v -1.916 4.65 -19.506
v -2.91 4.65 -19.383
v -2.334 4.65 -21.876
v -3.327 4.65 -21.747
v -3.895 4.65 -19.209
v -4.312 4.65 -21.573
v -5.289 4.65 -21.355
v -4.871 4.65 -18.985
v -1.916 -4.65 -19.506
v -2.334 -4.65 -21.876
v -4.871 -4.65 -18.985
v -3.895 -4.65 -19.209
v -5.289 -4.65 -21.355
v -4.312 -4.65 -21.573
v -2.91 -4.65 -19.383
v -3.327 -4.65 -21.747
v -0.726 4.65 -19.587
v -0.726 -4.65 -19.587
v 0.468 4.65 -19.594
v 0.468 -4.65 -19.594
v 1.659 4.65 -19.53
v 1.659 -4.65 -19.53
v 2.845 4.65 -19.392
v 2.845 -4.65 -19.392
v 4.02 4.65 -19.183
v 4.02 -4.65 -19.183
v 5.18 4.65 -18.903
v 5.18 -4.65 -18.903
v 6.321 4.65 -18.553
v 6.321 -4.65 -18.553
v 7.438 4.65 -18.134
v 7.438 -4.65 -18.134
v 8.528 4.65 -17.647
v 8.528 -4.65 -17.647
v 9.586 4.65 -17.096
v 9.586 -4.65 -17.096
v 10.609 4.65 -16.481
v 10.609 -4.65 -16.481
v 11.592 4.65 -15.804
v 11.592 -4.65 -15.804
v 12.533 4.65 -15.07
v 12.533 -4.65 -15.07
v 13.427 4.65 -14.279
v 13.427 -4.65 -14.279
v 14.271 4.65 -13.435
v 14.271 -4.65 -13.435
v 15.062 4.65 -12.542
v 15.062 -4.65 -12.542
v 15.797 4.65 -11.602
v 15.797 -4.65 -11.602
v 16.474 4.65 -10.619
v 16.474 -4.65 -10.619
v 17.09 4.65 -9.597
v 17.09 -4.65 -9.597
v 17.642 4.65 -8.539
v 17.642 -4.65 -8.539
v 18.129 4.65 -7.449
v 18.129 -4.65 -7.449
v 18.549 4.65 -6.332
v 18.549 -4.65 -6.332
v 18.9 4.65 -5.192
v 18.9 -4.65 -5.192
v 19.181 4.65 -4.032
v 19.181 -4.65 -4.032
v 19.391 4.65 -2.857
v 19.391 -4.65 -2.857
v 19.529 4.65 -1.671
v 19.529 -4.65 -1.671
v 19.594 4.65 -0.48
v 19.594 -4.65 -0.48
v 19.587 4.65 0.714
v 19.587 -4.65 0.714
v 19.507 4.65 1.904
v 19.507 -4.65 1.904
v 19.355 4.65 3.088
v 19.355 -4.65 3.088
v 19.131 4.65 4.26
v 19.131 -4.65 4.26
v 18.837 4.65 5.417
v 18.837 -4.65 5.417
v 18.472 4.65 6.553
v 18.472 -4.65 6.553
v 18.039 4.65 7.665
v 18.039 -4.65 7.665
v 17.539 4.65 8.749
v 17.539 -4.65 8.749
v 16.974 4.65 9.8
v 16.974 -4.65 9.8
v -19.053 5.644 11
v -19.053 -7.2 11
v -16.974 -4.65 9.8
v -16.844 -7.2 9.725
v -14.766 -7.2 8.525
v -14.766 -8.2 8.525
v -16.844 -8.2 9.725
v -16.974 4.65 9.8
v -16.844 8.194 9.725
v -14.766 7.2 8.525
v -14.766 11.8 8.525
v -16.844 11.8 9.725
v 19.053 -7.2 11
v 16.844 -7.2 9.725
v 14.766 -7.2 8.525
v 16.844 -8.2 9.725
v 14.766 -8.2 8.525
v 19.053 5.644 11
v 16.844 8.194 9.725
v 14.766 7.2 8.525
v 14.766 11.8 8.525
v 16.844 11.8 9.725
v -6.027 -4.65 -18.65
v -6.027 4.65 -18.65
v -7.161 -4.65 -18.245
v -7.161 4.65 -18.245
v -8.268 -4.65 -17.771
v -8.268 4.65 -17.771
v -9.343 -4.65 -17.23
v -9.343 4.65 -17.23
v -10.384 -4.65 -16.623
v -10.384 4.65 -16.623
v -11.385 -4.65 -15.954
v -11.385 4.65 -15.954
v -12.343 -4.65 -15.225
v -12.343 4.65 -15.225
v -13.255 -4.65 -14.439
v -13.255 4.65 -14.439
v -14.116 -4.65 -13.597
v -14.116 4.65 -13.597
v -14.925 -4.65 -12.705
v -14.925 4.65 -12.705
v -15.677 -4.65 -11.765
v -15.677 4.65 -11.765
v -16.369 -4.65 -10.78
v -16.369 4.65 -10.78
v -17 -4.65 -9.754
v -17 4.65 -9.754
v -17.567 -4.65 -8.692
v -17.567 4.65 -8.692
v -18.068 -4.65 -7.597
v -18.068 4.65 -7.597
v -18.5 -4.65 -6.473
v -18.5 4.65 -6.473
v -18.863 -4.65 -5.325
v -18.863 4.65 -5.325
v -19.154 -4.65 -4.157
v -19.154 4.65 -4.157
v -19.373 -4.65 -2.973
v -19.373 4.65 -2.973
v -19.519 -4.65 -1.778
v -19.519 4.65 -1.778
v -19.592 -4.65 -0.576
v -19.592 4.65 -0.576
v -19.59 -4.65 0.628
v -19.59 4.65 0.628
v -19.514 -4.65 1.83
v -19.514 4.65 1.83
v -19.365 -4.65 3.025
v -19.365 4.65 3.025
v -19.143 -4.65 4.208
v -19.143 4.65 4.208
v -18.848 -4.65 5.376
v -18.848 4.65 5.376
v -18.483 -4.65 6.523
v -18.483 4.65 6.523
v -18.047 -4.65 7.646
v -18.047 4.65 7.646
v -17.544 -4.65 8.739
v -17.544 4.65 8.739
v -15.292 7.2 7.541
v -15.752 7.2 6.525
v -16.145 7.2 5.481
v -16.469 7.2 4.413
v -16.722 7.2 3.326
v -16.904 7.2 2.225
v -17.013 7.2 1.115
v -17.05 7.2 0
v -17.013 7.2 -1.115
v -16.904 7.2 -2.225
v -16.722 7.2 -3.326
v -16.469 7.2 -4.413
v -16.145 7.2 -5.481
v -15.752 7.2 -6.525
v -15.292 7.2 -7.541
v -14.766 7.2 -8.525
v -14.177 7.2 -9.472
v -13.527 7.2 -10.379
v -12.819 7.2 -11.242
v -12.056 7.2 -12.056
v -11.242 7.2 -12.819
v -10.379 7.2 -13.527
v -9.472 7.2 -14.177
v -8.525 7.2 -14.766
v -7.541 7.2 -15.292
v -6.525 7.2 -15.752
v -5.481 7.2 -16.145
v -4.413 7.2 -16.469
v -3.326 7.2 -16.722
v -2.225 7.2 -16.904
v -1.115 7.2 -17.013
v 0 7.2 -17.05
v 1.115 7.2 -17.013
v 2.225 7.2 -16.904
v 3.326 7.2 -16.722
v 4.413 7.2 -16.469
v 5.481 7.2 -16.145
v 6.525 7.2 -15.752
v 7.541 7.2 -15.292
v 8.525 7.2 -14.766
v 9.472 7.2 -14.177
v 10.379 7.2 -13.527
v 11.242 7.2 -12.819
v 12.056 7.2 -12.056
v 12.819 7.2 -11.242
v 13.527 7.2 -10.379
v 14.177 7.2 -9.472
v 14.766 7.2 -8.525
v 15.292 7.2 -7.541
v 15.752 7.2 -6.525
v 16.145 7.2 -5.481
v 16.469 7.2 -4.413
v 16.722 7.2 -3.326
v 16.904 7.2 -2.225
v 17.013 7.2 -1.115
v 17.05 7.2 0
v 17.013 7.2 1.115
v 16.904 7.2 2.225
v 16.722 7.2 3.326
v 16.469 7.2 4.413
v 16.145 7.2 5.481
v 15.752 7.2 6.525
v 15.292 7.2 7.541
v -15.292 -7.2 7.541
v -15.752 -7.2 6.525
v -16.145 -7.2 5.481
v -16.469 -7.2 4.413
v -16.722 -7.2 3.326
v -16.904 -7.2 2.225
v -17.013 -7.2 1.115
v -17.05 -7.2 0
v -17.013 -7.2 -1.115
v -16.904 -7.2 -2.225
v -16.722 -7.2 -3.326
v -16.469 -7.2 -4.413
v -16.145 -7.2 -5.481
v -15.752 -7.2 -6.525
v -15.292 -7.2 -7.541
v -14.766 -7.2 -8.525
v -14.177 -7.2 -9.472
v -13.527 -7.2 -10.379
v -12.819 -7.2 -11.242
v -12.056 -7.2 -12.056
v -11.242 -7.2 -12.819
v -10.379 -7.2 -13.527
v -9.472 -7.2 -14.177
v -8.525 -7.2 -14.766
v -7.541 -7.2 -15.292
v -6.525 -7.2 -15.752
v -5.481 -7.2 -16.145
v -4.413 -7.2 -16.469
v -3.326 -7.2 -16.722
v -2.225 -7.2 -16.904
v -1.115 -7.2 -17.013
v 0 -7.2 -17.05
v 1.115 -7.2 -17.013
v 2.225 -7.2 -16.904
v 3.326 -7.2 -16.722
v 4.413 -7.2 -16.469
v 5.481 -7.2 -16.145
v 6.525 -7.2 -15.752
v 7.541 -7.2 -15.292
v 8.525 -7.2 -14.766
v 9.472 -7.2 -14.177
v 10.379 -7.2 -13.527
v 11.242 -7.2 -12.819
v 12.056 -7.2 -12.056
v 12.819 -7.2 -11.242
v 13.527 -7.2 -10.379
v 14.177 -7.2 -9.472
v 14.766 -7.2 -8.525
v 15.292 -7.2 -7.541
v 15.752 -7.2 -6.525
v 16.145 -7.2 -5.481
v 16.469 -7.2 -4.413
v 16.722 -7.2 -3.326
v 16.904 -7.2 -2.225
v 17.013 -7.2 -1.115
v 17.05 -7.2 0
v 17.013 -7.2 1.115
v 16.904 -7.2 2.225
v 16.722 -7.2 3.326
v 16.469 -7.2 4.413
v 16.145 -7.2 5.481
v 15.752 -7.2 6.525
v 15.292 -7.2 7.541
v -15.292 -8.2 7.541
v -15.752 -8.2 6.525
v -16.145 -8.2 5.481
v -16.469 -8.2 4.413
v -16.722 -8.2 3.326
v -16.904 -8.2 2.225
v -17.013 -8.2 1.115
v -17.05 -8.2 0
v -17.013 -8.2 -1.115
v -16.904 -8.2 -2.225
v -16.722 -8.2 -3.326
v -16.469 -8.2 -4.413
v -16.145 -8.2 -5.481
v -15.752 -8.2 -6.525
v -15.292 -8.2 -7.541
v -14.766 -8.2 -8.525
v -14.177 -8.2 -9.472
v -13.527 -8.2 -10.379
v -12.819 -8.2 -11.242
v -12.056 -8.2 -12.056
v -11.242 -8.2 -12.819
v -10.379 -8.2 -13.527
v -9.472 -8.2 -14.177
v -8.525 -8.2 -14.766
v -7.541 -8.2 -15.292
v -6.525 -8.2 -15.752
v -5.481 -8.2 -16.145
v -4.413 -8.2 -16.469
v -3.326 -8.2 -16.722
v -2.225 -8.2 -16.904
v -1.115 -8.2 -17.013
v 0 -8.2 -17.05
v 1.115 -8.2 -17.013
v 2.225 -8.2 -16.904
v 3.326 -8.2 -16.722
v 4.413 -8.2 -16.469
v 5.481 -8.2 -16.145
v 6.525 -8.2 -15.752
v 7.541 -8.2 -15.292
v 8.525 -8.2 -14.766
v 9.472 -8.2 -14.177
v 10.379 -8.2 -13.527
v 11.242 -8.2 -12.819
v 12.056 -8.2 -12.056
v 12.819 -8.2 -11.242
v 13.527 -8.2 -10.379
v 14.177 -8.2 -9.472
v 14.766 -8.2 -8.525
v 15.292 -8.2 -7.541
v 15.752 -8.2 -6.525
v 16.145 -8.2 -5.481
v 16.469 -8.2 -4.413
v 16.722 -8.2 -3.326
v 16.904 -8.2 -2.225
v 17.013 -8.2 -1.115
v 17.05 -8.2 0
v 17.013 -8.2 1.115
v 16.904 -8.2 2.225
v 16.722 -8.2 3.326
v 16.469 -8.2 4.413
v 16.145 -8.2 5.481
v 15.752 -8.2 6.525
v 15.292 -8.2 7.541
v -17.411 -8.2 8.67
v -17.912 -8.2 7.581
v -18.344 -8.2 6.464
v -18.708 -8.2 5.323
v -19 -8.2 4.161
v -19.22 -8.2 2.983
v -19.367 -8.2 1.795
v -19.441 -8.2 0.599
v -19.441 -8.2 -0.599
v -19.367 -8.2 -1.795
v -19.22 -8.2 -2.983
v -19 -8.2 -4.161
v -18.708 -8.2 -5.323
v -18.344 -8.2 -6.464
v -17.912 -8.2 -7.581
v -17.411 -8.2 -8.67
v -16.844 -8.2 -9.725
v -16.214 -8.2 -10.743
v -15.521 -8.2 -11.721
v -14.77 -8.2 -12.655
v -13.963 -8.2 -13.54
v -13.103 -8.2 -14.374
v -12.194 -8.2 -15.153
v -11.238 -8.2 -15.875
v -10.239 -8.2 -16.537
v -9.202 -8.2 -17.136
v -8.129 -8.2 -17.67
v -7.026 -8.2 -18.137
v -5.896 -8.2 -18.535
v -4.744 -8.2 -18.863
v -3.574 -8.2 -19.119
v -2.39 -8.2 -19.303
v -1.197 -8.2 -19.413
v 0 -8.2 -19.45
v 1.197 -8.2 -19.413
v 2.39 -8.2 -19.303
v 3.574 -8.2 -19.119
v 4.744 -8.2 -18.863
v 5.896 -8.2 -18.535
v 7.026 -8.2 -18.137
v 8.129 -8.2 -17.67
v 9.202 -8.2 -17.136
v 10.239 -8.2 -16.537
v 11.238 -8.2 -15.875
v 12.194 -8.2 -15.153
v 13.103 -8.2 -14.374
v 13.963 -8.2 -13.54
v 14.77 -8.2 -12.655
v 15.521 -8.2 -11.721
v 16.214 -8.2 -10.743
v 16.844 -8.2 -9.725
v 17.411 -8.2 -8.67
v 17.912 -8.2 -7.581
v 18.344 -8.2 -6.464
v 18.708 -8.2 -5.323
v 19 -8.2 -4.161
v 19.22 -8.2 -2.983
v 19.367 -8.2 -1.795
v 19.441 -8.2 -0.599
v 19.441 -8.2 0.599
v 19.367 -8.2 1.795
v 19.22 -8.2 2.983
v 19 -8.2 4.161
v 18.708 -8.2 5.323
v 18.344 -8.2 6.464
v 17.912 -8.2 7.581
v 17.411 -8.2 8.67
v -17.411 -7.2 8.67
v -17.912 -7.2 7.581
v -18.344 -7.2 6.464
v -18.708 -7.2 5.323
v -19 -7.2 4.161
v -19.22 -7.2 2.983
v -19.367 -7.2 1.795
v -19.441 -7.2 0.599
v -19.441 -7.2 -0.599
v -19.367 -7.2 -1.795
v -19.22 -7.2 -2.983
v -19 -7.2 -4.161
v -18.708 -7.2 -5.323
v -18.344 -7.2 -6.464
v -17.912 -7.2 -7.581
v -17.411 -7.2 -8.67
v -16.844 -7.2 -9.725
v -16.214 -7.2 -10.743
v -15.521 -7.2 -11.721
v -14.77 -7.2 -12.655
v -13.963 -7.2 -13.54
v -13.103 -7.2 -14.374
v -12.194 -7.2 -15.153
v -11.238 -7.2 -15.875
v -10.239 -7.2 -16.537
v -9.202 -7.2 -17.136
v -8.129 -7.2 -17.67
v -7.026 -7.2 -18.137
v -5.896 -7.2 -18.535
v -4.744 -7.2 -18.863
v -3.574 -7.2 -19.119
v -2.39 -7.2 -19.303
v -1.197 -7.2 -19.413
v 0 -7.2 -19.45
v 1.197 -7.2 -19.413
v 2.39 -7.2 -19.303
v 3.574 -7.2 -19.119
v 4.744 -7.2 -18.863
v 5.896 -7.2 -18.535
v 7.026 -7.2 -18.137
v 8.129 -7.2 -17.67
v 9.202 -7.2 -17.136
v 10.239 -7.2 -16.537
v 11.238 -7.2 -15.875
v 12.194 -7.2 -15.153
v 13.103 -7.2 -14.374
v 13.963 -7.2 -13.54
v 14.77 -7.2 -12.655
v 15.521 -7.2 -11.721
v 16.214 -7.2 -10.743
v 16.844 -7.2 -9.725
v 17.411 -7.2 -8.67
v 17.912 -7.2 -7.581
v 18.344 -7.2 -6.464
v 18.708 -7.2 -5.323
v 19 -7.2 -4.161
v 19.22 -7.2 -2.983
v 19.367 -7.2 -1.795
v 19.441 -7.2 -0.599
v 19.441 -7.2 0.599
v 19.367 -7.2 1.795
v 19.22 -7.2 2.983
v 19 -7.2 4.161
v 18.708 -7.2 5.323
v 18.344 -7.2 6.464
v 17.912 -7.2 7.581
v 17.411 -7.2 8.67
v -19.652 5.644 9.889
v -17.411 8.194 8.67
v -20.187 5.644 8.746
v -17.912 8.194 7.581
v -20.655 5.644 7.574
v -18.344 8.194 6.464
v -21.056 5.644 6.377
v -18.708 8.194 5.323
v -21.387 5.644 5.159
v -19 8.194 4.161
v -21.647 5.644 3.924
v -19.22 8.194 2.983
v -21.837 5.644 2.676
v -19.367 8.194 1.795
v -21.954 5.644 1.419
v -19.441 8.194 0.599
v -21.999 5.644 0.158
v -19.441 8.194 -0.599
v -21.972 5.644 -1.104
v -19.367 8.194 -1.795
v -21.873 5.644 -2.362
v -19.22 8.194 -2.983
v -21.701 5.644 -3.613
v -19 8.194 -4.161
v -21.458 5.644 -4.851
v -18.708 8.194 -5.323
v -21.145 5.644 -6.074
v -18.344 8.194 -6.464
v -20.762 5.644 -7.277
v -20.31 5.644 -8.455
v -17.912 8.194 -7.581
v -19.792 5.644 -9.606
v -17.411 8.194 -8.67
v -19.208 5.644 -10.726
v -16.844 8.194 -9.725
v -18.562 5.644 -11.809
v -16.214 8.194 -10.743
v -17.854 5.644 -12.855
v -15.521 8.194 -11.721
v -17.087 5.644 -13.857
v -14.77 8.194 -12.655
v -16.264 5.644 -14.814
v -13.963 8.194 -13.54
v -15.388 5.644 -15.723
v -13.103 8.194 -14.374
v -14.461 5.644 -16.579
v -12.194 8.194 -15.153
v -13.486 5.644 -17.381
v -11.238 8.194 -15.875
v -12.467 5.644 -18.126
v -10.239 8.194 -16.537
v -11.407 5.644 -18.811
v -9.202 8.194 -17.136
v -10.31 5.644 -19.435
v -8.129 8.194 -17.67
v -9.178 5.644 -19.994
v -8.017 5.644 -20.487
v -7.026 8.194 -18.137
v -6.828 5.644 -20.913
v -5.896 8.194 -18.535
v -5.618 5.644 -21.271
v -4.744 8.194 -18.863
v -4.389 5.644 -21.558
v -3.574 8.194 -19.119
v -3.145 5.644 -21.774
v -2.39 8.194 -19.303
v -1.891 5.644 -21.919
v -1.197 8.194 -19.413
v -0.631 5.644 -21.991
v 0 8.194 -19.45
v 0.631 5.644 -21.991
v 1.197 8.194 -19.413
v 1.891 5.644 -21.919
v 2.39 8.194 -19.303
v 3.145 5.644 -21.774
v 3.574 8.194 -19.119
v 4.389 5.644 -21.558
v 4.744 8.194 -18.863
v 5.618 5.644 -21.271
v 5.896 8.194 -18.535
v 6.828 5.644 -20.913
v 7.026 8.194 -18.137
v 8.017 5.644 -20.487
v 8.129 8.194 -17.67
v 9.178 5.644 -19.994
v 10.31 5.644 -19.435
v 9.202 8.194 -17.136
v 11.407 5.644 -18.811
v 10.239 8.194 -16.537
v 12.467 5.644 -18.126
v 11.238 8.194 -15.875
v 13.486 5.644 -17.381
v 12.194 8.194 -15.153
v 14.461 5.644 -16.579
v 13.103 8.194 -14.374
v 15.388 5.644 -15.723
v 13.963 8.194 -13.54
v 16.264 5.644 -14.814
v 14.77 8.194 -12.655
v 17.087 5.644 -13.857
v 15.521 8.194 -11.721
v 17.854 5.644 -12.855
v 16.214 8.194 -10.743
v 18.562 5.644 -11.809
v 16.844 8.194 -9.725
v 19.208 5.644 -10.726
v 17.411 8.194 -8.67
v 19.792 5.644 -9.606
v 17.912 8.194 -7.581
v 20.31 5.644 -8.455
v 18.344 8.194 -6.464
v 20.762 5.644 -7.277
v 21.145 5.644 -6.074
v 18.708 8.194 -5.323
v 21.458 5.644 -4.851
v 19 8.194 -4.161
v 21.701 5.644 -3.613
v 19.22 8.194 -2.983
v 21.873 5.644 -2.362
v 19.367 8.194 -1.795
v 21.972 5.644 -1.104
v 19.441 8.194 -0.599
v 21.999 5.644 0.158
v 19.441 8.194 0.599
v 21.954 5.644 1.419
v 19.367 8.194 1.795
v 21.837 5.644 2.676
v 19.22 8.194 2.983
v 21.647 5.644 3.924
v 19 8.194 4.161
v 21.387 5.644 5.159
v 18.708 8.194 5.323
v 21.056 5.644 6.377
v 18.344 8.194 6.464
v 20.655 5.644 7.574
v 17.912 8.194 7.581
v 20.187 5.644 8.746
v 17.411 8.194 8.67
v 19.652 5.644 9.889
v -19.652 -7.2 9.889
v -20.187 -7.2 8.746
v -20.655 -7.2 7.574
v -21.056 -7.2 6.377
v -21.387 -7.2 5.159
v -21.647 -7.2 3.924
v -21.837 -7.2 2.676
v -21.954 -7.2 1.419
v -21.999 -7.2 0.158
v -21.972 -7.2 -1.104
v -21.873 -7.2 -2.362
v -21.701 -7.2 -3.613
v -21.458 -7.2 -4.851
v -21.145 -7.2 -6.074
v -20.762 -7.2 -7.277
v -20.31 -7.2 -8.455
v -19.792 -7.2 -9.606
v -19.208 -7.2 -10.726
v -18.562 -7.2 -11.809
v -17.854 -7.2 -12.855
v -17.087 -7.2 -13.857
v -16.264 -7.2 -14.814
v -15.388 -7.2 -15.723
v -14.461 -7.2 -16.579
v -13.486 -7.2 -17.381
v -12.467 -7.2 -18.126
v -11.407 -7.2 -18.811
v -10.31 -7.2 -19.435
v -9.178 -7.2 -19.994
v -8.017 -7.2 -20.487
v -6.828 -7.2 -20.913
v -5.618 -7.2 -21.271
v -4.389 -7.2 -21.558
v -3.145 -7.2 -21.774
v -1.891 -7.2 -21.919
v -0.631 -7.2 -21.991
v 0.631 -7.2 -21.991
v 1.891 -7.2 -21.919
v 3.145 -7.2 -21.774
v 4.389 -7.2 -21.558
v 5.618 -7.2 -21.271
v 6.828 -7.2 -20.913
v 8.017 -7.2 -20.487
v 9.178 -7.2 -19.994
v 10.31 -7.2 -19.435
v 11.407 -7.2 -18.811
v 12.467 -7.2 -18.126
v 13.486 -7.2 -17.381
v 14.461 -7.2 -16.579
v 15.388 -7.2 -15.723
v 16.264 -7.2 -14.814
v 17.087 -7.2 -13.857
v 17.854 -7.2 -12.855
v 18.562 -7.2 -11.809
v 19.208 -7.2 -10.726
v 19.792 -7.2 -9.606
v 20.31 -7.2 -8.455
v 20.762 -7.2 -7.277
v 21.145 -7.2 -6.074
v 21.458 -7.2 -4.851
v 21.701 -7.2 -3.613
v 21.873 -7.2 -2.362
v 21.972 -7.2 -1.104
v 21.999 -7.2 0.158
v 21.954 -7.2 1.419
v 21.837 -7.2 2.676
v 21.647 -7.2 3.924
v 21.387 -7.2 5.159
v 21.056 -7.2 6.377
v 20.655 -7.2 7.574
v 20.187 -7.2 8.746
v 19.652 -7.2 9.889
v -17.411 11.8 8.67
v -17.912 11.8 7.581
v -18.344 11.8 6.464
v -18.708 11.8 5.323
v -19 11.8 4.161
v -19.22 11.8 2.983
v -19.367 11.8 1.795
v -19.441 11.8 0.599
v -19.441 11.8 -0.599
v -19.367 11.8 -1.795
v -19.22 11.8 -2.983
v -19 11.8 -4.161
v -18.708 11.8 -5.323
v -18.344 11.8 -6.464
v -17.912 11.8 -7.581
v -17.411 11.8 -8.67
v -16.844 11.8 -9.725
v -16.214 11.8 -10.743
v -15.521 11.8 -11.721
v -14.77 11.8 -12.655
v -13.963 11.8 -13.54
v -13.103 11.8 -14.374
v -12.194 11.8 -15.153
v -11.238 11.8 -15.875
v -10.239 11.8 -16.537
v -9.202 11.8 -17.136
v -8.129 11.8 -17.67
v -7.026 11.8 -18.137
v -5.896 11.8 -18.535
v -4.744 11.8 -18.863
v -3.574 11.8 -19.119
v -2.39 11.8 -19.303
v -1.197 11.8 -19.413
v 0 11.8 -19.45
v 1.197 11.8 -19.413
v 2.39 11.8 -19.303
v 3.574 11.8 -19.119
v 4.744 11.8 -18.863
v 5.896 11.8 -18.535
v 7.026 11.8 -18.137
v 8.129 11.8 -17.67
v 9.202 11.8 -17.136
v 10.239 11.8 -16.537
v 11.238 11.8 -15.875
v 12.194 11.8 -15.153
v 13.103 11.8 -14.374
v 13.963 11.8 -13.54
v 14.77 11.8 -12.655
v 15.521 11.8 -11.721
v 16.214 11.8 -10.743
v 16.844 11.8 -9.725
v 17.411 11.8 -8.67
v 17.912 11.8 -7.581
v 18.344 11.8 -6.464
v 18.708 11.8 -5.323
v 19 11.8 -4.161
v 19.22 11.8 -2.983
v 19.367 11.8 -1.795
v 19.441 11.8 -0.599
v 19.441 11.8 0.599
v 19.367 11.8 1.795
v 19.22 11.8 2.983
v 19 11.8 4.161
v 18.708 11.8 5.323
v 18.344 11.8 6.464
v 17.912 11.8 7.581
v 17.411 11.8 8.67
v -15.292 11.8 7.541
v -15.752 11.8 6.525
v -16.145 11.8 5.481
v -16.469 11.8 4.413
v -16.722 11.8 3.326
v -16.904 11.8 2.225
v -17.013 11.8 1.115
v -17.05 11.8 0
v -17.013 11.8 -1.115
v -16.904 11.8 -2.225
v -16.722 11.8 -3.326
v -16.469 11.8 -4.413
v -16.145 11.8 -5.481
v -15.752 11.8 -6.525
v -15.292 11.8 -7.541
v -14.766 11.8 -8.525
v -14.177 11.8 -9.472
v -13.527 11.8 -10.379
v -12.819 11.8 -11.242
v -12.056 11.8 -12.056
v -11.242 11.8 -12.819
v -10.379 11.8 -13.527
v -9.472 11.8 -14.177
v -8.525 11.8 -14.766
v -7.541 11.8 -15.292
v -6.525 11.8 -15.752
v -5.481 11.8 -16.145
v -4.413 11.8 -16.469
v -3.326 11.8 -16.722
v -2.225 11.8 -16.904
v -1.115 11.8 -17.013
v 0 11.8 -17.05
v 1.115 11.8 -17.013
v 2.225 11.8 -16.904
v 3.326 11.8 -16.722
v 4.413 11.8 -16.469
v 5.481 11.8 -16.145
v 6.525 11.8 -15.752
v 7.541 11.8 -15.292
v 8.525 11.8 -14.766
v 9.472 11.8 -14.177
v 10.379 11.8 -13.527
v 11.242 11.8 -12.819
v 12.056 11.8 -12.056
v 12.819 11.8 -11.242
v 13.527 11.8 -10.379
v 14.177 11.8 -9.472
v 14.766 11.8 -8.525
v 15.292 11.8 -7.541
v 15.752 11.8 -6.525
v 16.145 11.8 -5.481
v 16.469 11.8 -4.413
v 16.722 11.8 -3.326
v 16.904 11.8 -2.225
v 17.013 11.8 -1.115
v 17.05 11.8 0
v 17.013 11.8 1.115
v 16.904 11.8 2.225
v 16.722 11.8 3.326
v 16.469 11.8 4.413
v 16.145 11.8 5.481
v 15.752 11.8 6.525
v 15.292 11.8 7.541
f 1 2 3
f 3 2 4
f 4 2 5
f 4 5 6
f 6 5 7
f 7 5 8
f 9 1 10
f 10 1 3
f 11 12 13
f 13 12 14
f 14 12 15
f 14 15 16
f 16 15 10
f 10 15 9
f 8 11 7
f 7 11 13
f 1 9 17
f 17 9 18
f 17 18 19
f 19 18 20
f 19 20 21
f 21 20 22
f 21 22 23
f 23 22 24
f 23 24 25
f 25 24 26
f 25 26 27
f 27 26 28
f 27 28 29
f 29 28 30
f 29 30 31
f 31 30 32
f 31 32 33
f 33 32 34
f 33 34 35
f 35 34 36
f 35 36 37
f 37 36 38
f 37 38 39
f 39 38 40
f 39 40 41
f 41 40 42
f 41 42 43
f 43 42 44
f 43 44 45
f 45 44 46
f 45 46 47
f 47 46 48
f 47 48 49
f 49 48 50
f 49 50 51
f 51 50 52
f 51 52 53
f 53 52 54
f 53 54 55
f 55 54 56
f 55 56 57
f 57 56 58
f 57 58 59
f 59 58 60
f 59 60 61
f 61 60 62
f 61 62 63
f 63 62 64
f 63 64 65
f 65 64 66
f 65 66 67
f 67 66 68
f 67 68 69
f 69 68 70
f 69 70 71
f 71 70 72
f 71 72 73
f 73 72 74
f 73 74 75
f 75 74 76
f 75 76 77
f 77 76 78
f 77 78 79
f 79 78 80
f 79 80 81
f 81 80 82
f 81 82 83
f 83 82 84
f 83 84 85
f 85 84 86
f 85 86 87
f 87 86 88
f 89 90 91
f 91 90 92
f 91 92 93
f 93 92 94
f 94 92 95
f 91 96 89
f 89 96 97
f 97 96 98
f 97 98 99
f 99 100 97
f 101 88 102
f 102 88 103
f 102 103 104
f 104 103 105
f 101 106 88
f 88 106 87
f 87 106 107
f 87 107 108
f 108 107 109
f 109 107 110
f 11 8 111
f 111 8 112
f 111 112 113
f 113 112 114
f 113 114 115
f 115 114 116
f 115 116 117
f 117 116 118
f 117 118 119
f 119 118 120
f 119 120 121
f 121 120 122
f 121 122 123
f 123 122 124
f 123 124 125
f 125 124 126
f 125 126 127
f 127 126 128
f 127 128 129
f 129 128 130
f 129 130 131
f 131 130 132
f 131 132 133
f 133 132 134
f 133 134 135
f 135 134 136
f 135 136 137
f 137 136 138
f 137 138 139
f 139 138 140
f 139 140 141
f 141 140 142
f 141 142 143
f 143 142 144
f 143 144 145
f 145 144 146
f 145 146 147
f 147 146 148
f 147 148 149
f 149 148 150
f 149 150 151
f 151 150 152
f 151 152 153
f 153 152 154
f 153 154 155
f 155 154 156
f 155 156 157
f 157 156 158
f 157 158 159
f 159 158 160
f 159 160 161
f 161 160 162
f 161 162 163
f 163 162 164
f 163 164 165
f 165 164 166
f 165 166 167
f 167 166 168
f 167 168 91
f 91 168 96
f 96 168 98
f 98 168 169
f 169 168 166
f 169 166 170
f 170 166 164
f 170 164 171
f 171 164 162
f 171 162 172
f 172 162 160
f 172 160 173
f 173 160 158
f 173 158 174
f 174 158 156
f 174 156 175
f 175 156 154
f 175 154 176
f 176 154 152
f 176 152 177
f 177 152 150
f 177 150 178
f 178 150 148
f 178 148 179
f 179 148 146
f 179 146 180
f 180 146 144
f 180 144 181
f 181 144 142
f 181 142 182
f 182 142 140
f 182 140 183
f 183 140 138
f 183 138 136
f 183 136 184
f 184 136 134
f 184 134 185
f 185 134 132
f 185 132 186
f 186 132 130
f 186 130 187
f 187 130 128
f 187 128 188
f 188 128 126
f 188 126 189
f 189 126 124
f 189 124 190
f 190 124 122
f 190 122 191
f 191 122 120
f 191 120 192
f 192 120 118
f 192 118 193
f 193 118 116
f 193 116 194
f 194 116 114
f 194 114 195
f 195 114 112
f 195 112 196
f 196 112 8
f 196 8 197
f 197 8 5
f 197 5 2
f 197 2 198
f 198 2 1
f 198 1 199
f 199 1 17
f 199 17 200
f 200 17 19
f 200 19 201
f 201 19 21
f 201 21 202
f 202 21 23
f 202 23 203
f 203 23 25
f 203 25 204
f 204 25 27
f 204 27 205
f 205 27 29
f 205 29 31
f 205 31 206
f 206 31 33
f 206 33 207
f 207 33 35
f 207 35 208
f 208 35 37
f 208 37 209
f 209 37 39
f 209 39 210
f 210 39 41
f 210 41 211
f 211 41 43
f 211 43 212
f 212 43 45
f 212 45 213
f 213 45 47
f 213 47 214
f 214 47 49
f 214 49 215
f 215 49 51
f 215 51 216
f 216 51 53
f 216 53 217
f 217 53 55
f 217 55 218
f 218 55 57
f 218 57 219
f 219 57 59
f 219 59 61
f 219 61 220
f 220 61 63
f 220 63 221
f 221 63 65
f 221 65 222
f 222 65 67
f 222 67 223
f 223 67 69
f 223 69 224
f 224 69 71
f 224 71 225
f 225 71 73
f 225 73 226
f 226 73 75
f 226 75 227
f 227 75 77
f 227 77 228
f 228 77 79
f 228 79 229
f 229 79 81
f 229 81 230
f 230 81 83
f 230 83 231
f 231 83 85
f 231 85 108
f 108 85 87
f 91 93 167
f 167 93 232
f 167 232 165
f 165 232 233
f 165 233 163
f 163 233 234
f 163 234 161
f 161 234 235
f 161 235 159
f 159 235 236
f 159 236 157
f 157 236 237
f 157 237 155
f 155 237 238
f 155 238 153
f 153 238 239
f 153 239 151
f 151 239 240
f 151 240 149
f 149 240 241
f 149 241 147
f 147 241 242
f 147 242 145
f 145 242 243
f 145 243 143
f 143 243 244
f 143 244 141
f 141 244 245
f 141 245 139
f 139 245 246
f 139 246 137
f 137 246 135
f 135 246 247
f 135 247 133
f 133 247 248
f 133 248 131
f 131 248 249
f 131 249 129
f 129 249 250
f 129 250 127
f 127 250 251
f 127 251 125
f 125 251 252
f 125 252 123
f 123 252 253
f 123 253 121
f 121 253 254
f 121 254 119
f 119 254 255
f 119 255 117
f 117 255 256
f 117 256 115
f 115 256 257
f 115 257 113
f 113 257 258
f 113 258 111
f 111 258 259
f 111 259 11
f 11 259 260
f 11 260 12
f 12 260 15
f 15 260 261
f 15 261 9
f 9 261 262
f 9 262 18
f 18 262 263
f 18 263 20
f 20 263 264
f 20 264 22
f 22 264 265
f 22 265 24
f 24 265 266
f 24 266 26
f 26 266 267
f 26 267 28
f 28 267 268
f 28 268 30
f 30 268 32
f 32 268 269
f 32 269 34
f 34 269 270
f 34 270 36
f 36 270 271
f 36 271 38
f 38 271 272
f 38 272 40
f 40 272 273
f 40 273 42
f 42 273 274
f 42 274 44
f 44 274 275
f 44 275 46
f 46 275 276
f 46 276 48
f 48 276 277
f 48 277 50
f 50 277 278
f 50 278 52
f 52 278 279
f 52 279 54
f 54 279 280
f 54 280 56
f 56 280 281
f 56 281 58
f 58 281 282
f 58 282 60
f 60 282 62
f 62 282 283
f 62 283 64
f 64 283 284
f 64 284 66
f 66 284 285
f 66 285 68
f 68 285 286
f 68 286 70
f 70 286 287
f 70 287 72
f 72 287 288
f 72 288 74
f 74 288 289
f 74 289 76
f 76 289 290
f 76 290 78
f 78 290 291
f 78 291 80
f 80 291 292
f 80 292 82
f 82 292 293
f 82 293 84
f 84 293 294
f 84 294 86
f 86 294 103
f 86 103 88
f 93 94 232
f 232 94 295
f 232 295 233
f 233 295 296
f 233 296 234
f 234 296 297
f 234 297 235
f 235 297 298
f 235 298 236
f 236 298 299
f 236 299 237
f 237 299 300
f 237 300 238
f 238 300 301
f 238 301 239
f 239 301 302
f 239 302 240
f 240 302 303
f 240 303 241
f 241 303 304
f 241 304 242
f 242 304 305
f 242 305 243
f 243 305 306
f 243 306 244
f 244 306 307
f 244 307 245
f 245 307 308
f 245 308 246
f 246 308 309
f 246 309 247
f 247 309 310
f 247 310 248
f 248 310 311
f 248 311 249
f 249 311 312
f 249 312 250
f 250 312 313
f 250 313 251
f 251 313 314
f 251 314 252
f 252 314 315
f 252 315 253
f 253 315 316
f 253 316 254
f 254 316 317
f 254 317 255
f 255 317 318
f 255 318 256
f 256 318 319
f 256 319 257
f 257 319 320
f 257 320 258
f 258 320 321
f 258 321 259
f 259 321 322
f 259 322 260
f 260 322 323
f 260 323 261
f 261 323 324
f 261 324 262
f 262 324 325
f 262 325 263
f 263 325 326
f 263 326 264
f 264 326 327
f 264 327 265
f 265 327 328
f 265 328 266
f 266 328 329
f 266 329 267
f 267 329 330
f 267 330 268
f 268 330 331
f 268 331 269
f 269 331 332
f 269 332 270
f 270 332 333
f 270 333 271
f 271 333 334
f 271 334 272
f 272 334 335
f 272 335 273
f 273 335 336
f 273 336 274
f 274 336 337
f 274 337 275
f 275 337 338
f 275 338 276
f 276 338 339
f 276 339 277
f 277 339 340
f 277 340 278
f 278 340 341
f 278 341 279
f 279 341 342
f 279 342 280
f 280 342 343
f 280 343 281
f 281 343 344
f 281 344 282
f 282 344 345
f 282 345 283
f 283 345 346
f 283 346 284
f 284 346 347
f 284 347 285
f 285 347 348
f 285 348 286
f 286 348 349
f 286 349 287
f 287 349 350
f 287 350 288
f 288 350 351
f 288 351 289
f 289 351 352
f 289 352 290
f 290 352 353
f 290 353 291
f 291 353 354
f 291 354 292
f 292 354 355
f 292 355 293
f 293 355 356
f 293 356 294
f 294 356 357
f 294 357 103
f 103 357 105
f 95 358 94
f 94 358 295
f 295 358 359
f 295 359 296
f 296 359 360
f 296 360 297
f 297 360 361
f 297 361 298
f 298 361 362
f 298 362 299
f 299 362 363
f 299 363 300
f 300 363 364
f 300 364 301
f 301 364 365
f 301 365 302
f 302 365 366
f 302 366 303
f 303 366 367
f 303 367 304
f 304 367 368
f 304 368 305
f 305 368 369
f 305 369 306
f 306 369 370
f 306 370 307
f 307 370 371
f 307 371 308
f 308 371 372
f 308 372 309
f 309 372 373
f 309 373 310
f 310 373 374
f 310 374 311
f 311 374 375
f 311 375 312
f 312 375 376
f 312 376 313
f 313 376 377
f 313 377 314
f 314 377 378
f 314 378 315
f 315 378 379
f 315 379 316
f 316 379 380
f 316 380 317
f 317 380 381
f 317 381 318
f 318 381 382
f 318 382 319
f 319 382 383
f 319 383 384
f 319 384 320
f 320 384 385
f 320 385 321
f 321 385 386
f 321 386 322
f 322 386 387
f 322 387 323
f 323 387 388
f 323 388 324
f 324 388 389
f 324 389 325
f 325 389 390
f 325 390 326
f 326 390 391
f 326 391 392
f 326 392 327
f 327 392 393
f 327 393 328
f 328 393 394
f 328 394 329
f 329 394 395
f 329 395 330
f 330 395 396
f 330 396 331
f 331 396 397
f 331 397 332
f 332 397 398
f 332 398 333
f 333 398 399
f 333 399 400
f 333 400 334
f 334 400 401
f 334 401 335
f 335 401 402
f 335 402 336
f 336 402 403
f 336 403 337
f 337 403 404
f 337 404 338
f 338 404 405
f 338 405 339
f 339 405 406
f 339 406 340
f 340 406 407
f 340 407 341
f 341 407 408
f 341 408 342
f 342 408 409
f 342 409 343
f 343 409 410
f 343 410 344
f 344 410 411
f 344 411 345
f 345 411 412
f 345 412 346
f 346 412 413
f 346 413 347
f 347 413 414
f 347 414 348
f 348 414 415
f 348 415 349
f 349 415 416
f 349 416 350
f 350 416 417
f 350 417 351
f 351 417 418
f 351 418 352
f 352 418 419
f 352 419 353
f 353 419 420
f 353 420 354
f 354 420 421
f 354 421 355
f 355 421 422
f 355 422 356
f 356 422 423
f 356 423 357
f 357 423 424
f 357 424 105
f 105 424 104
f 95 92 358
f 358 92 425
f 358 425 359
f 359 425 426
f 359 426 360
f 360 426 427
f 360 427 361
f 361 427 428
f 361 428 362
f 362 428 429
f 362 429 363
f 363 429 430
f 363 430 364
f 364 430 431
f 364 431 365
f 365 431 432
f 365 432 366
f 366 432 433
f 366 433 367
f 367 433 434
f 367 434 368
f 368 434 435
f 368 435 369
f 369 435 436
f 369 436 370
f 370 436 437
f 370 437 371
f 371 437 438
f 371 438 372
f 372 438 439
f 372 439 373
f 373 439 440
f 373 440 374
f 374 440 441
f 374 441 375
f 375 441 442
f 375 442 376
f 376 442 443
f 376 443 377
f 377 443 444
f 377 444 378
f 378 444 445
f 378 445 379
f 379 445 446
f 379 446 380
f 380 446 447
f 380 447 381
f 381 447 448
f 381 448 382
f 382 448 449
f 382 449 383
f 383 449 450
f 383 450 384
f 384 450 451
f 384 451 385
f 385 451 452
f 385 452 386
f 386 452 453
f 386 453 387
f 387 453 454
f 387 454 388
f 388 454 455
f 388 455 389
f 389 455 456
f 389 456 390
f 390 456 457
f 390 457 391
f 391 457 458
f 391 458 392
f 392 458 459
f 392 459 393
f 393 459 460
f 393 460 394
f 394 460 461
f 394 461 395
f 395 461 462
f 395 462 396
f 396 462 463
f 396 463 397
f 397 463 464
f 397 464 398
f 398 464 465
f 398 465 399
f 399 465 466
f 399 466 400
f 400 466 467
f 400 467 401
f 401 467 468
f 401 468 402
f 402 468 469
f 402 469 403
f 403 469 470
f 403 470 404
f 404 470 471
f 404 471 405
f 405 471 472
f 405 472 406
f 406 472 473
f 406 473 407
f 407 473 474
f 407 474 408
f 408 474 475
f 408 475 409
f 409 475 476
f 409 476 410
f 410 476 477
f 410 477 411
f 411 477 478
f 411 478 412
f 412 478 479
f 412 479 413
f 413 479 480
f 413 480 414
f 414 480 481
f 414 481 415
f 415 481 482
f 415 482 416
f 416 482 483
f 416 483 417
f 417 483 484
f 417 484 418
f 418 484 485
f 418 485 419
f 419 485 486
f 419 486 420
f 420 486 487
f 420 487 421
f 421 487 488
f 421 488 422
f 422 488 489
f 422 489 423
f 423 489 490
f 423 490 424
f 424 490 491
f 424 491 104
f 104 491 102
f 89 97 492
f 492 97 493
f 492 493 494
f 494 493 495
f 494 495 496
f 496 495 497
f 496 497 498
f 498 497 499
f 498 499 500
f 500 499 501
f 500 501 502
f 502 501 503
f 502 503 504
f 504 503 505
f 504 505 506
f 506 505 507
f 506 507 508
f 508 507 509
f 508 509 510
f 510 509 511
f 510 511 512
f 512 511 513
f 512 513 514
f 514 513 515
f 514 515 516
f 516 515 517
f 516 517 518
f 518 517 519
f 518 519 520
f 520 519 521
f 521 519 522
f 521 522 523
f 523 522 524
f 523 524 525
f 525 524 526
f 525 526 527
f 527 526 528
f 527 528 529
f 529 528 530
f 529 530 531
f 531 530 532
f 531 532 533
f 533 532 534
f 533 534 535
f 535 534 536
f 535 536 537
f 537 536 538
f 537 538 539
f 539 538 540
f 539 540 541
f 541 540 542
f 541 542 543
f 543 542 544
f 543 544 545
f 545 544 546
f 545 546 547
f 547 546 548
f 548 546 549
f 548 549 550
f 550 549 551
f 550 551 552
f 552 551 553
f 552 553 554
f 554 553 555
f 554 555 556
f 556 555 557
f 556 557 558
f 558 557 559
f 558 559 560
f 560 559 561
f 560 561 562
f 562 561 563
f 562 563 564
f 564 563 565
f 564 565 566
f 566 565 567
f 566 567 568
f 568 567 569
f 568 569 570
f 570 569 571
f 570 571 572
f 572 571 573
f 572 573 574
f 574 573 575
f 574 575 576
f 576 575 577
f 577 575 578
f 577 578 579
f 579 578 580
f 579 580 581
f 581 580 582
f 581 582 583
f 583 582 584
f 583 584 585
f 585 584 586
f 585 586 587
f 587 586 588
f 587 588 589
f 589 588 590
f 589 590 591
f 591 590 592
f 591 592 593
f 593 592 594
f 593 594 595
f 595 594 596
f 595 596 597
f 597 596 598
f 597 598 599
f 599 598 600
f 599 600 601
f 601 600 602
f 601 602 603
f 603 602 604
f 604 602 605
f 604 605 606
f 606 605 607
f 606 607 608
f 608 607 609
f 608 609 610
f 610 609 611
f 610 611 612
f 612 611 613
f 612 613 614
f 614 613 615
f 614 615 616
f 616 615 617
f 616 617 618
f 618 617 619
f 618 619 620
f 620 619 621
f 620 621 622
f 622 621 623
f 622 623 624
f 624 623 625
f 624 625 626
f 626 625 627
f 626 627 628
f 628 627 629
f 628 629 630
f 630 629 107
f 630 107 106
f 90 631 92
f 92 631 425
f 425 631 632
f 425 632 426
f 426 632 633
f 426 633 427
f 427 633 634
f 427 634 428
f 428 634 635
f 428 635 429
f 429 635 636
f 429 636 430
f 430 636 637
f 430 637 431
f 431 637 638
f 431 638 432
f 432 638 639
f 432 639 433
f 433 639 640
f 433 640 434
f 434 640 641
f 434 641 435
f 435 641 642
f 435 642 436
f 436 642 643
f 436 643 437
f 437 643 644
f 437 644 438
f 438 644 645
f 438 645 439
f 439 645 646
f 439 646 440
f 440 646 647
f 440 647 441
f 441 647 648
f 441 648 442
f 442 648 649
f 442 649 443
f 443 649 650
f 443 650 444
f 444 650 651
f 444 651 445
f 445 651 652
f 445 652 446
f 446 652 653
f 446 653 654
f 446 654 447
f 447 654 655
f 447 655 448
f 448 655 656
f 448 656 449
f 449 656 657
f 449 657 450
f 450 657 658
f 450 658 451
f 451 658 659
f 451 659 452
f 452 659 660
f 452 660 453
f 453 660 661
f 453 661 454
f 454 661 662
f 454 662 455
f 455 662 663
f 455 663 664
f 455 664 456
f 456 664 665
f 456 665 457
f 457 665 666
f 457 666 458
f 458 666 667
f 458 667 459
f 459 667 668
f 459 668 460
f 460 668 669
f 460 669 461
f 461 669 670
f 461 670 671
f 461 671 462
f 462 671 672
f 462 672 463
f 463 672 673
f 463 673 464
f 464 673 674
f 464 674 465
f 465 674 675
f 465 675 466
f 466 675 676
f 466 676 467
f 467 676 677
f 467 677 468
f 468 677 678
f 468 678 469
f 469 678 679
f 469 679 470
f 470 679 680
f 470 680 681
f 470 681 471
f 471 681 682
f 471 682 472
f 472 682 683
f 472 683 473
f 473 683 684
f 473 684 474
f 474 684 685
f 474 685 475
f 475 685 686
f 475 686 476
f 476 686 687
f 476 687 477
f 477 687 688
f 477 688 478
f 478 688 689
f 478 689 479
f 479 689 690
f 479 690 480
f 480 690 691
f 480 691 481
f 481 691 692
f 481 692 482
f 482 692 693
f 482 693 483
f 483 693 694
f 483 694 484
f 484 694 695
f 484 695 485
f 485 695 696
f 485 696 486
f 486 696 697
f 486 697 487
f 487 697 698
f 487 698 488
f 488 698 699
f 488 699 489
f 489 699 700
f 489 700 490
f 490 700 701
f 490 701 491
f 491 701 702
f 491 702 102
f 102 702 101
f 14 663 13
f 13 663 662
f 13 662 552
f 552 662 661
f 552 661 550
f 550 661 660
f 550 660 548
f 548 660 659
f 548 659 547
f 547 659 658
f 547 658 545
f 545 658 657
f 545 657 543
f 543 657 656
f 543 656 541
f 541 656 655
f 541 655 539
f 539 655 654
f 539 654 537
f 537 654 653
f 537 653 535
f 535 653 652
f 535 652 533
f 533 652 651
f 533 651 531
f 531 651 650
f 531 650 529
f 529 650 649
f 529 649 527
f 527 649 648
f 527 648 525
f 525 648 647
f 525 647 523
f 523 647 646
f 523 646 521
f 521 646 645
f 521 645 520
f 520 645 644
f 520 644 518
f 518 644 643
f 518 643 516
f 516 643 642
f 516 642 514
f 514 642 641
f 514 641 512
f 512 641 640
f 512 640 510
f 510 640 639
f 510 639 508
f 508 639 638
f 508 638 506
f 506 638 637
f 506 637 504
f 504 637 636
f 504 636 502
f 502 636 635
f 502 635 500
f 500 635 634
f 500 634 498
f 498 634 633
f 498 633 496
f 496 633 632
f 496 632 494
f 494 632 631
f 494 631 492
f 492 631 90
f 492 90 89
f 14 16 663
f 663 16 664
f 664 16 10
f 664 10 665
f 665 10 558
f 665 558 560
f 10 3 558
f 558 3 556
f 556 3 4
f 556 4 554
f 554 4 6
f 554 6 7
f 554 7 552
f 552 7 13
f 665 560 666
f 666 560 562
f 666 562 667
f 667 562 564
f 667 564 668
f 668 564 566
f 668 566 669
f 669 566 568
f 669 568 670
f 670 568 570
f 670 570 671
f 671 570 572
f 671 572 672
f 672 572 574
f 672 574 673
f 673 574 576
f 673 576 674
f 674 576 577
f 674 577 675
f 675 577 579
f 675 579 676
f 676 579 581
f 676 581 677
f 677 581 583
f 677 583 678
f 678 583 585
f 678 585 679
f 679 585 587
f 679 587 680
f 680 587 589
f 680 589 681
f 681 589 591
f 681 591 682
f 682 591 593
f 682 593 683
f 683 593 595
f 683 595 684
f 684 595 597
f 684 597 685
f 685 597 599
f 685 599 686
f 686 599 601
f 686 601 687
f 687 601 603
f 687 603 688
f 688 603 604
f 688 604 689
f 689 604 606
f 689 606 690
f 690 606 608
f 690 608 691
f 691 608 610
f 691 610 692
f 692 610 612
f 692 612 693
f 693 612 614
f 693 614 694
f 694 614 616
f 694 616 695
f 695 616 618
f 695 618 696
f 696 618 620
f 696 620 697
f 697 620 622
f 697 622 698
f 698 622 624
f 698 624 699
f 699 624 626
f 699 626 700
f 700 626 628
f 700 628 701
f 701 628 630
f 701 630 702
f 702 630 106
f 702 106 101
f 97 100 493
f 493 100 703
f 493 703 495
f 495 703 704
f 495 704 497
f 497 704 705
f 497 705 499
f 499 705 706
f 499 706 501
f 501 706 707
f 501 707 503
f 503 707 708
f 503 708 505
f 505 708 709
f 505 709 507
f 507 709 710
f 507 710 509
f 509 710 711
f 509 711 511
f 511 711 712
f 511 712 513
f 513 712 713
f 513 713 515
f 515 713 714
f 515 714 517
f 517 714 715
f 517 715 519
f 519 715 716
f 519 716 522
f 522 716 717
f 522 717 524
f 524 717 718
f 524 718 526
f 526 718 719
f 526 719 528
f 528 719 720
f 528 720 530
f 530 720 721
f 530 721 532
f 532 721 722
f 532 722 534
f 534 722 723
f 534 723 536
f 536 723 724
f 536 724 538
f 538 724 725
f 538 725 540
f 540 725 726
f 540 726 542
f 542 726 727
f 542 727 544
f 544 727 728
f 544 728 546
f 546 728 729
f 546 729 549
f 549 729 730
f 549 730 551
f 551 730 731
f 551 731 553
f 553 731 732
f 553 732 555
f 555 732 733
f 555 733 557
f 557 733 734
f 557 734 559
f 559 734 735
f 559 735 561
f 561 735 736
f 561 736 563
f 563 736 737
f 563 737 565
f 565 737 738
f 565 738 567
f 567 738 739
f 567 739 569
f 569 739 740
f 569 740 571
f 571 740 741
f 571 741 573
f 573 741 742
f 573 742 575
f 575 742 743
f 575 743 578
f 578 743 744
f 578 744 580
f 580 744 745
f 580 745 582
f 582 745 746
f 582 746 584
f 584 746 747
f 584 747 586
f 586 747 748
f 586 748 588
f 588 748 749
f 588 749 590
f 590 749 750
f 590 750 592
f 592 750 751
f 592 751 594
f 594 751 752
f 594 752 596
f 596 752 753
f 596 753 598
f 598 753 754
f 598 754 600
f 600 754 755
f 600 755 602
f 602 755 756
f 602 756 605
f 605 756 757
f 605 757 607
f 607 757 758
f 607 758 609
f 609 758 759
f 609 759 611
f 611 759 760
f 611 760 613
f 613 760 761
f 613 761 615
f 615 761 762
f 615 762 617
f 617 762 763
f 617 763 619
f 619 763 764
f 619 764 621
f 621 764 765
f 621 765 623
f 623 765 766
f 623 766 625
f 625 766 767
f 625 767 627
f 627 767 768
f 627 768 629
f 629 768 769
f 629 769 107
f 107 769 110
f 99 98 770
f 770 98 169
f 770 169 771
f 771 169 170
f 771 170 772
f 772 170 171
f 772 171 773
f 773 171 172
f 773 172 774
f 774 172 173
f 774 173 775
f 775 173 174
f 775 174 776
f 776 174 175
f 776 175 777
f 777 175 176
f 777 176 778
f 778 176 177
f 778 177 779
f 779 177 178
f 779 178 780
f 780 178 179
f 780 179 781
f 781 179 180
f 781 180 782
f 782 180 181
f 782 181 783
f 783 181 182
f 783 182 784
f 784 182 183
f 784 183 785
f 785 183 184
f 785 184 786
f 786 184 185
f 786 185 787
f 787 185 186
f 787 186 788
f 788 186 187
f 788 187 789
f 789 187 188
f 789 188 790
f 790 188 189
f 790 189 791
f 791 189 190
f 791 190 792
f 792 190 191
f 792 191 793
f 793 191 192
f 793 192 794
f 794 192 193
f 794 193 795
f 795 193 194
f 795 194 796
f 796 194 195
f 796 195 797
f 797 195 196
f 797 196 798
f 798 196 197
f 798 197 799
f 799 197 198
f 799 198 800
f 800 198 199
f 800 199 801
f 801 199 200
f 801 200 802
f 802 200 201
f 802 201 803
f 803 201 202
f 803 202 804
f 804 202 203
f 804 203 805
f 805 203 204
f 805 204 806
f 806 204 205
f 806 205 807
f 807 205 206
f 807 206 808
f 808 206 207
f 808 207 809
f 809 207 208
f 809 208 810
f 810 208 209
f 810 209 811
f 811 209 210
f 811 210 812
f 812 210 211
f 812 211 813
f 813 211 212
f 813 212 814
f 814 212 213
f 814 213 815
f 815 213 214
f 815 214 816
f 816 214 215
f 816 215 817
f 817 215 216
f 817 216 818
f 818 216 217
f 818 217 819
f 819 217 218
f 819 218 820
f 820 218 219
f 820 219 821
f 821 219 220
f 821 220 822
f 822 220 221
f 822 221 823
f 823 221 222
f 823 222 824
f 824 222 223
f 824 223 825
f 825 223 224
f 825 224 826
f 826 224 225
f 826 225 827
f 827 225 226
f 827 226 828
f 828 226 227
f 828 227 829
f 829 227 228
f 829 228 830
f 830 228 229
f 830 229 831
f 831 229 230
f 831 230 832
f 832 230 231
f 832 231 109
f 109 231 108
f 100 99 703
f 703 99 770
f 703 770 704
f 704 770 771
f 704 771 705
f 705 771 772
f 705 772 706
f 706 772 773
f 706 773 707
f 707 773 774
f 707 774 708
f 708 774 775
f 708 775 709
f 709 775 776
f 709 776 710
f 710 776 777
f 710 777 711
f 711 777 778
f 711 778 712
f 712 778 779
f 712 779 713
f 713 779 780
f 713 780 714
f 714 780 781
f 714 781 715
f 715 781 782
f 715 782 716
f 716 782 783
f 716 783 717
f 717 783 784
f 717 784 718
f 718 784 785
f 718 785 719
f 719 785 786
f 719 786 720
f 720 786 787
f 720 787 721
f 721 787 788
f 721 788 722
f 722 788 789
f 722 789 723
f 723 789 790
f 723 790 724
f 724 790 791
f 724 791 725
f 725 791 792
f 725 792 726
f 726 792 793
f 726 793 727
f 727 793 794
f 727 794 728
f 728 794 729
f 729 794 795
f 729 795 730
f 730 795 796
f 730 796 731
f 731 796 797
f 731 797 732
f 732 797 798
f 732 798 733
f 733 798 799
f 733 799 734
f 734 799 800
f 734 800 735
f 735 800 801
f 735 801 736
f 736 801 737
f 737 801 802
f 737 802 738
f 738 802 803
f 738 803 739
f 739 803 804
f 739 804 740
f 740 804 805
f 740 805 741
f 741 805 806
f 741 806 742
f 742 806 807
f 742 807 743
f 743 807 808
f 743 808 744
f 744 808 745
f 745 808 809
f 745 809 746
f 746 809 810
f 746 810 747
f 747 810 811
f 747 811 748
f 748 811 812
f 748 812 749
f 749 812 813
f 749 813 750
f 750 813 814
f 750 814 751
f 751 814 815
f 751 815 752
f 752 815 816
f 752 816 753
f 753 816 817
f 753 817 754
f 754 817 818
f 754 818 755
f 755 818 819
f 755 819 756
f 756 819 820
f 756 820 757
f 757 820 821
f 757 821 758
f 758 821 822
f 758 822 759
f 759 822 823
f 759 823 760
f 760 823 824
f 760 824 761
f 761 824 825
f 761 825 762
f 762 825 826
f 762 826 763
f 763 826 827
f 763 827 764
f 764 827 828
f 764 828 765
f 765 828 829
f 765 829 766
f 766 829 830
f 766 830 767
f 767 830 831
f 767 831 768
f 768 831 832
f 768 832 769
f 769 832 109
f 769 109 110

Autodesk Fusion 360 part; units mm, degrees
sketch "Lips" plane through (0, 0, 0) normal (0, 1, 0) x (1, 0, 0)
  circle A0 centre (0, 0) radius 17.05
  circle A1 centre (0, 0) radius 19.45
  dimension "d78" = 34.1
  dimension "d79" = 38.9
extrude "Lips (1)" add sketch "Lips" along normal blind 11.8 and the other way blind 8.2
sketch "Band" plane through (0, 0, 0) normal (0, 1, 0) x (1, 0, 0)
  circle A0 centre (0, 0) radius 17.05
  circle A1 centre (0, 0) radius 22
  dimension "d84" = 34.1
  dimension "d85" = 44
extrude "Band (1)" add sketch "Band" along normal blind 8.1941 and the other way blind 7.2
sketch "Outer cone profile" plane through (0, 0, 0) normal (0, 0, 1) x (1, 0, 0)
  line L0 (0, 1.75) -> (0, 22.5) construction
  line L1 (1.75, 0) -> (22.5, 0) construction
  line L2 (22, 5.6441) -> (22, 8.1941)
  line L3 (22, 8.1941) -> (19.45, 8.1941)
  line L4 (19.45, 8.1941) -> (22, 5.6441)
  dimension "d90" = 22
  dimension "d91" = 19.45
  dimension "d92" = 5.6441
  dimension "d93" = 8.1941
revolve "Outer cone" cut sketch "Outer cone profile" angle 360 about axis through (0, 1.75, 0) along (0, 1, 0)
sketch "Pocket profile" plane through (0, 0, 0) normal (0, 0, 1) x (1, 0, 0)
  line L0 (0, 1.75) -> (0, 22.5) construction
  line L1 (1.75, 0) -> (22.5, 0) construction
  line L2 (0, -7.2) -> (17.05, -7.2)
  line L3 (17.05, -7.2) -> (19.6, -4.65)
  line L4 (19.6, -4.65) -> (19.6, 4.65)
  line L5 (19.6, 4.65) -> (17.05, 7.2)
  line L6 (17.05, 7.2) -> (0, 7.2)
  line L7 (0, 7.2) -> (0, -7.2)
  dimension "d95" = 17.05
  dimension "d96" = 19.6
  dimension "d97" = 7.2
  dimension "d98" = 4.65
revolve "Pocket" cut sketch "Pocket profile" angle 360 about axis through (0, 1.75, 0) along (0, 1, 0)
sketch "Mouth" plane through (0, 0, 0) normal (0, 1, 0) x (1, 0, 0)
  line L0 (0, 0) -> (46.7654, -27)
  line L1 (46.7654, -27) -> (0, -54)
  line L2 (0, -54) -> (-46.7654, -27)
  line L3 (-46.7654, -27) -> (0, 0)
  line L4 (0, 0) -> (0, -54) construction
  dimension "d100" = 54
  dimension "d101" = 54
  dimension "d102" = 54
  dimension "d103" = 60
  dimension "d104" = 60
extrude "Mouth (1)" cut sketch "Mouth" along normal mid plane 30
ref_plane "WorkPlane3" through (0, 12.125, 0) normal (-0.1736, 0, -0.9848) x (0, 1, 0)
sketch "Stem slot section" plane through (0, 0, 0) normal (-0.1736, 0, -0.9848) x (0, 1, 0)
  line L0 (1.75, 0) -> (22.5, 0) construction
  line L1 (-4.65, 1.5) -> (4.65, 1.5)
  line L2 (4.65, 1.5) -> (4.65, -1.5)
  line L3 (4.65, -1.5) -> (-4.65, -1.5)
  line L4 (-4.65, -1.5) -> (-4.65, 1.5)
  line L5 (0, 0) -> (0, 4.8) construction
  dimension "d109" = 4.8
  dimension "d110" = 3
  dimension "d111" = 9.3
extrude "Stem slot" cut sketch "Stem slot section" along normal blind 6.4 from surface at 18.6
equation "rodOuterDiameter = 33.4 mm"
equation "collarClearance = 0.7 mm"
equation "collarWall = 2.4 mm"
equation "collarWidth = 20.0 mm"
equation "mouthHalfAngleDeg = 60.0 deg"
equation "ringOuterDiameter = 38.9 mm"
equation "ringWidth = 9.0 mm"
equation "stemThickness = 2.4 mm"
equation "stemAngleDeg = 100.0 deg"
equation "pocketClearance = 0.3 mm"
equation "slotClearance = 0.6 mm"
equation "pocketWidth = ringWidth + pocketClearance"
equation "pocketChamfer = ( ringOuterDiameter + pocketClearance ) / 2 - ( rodOuterDiameter + collarClearance ) / 2"
equation "bandWidth = pocketWidth + 2 * pocketChamfer"
equation "farLip = 1.0 mm"
equation "farExtent = bandWidth / 2 + farLip"
equation "chamferShift = collarWall * ( sqrt(2) - 1 )"
equation "d78 = rodOuterDiameter + collarClearance"
equation "d79 = rodOuterDiameter + collarClearance + 2 * collarWall"
equation "d80 = collarWidth - farExtent"
equation "d82 = farExtent"
equation "d84 = rodOuterDiameter + collarClearance"
equation "d85 = ringOuterDiameter + pocketClearance + 2 * collarWall"
equation "d86 = bandWidth / 2 + chamferShift"
equation "d88 = bandWidth / 2"
equation "d90 = ( ringOuterDiameter + pocketClearance + 2 * collarWall ) / 2"
equation "d91 = ( rodOuterDiameter + collarClearance + 2 * collarWall ) / 2"
equation "d92 = pocketWidth / 2 + chamferShift"
equation "d93 = bandWidth / 2 + chamferShift"
equation "d95 = ( rodOuterDiameter + collarClearance ) / 2"
equation "d96 = ( ringOuterDiameter + pocketClearance ) / 2"
equation "d97 = bandWidth / 2"
equation "d98 = pocketWidth / 2"
equation "d100 = Linear Dimension-2"
equation "d101 = Linear Dimension-3"
equation "d102 = Linear Dimension-4"
equation "d103 = mouthHalfAngleDeg"
equation "d104 = mouthHalfAngleDeg"
equation "d105 = collarWidth + 10 mm"
equation "d107 = stemAngleDeg"
equation "d109 = stemThickness * 2"
equation "d110 = stemThickness + slotClearance"
equation "d111 = pocketWidth"
equation "d112 = ( ringOuterDiameter + pocketClearance ) / 2 - 1 mm"
